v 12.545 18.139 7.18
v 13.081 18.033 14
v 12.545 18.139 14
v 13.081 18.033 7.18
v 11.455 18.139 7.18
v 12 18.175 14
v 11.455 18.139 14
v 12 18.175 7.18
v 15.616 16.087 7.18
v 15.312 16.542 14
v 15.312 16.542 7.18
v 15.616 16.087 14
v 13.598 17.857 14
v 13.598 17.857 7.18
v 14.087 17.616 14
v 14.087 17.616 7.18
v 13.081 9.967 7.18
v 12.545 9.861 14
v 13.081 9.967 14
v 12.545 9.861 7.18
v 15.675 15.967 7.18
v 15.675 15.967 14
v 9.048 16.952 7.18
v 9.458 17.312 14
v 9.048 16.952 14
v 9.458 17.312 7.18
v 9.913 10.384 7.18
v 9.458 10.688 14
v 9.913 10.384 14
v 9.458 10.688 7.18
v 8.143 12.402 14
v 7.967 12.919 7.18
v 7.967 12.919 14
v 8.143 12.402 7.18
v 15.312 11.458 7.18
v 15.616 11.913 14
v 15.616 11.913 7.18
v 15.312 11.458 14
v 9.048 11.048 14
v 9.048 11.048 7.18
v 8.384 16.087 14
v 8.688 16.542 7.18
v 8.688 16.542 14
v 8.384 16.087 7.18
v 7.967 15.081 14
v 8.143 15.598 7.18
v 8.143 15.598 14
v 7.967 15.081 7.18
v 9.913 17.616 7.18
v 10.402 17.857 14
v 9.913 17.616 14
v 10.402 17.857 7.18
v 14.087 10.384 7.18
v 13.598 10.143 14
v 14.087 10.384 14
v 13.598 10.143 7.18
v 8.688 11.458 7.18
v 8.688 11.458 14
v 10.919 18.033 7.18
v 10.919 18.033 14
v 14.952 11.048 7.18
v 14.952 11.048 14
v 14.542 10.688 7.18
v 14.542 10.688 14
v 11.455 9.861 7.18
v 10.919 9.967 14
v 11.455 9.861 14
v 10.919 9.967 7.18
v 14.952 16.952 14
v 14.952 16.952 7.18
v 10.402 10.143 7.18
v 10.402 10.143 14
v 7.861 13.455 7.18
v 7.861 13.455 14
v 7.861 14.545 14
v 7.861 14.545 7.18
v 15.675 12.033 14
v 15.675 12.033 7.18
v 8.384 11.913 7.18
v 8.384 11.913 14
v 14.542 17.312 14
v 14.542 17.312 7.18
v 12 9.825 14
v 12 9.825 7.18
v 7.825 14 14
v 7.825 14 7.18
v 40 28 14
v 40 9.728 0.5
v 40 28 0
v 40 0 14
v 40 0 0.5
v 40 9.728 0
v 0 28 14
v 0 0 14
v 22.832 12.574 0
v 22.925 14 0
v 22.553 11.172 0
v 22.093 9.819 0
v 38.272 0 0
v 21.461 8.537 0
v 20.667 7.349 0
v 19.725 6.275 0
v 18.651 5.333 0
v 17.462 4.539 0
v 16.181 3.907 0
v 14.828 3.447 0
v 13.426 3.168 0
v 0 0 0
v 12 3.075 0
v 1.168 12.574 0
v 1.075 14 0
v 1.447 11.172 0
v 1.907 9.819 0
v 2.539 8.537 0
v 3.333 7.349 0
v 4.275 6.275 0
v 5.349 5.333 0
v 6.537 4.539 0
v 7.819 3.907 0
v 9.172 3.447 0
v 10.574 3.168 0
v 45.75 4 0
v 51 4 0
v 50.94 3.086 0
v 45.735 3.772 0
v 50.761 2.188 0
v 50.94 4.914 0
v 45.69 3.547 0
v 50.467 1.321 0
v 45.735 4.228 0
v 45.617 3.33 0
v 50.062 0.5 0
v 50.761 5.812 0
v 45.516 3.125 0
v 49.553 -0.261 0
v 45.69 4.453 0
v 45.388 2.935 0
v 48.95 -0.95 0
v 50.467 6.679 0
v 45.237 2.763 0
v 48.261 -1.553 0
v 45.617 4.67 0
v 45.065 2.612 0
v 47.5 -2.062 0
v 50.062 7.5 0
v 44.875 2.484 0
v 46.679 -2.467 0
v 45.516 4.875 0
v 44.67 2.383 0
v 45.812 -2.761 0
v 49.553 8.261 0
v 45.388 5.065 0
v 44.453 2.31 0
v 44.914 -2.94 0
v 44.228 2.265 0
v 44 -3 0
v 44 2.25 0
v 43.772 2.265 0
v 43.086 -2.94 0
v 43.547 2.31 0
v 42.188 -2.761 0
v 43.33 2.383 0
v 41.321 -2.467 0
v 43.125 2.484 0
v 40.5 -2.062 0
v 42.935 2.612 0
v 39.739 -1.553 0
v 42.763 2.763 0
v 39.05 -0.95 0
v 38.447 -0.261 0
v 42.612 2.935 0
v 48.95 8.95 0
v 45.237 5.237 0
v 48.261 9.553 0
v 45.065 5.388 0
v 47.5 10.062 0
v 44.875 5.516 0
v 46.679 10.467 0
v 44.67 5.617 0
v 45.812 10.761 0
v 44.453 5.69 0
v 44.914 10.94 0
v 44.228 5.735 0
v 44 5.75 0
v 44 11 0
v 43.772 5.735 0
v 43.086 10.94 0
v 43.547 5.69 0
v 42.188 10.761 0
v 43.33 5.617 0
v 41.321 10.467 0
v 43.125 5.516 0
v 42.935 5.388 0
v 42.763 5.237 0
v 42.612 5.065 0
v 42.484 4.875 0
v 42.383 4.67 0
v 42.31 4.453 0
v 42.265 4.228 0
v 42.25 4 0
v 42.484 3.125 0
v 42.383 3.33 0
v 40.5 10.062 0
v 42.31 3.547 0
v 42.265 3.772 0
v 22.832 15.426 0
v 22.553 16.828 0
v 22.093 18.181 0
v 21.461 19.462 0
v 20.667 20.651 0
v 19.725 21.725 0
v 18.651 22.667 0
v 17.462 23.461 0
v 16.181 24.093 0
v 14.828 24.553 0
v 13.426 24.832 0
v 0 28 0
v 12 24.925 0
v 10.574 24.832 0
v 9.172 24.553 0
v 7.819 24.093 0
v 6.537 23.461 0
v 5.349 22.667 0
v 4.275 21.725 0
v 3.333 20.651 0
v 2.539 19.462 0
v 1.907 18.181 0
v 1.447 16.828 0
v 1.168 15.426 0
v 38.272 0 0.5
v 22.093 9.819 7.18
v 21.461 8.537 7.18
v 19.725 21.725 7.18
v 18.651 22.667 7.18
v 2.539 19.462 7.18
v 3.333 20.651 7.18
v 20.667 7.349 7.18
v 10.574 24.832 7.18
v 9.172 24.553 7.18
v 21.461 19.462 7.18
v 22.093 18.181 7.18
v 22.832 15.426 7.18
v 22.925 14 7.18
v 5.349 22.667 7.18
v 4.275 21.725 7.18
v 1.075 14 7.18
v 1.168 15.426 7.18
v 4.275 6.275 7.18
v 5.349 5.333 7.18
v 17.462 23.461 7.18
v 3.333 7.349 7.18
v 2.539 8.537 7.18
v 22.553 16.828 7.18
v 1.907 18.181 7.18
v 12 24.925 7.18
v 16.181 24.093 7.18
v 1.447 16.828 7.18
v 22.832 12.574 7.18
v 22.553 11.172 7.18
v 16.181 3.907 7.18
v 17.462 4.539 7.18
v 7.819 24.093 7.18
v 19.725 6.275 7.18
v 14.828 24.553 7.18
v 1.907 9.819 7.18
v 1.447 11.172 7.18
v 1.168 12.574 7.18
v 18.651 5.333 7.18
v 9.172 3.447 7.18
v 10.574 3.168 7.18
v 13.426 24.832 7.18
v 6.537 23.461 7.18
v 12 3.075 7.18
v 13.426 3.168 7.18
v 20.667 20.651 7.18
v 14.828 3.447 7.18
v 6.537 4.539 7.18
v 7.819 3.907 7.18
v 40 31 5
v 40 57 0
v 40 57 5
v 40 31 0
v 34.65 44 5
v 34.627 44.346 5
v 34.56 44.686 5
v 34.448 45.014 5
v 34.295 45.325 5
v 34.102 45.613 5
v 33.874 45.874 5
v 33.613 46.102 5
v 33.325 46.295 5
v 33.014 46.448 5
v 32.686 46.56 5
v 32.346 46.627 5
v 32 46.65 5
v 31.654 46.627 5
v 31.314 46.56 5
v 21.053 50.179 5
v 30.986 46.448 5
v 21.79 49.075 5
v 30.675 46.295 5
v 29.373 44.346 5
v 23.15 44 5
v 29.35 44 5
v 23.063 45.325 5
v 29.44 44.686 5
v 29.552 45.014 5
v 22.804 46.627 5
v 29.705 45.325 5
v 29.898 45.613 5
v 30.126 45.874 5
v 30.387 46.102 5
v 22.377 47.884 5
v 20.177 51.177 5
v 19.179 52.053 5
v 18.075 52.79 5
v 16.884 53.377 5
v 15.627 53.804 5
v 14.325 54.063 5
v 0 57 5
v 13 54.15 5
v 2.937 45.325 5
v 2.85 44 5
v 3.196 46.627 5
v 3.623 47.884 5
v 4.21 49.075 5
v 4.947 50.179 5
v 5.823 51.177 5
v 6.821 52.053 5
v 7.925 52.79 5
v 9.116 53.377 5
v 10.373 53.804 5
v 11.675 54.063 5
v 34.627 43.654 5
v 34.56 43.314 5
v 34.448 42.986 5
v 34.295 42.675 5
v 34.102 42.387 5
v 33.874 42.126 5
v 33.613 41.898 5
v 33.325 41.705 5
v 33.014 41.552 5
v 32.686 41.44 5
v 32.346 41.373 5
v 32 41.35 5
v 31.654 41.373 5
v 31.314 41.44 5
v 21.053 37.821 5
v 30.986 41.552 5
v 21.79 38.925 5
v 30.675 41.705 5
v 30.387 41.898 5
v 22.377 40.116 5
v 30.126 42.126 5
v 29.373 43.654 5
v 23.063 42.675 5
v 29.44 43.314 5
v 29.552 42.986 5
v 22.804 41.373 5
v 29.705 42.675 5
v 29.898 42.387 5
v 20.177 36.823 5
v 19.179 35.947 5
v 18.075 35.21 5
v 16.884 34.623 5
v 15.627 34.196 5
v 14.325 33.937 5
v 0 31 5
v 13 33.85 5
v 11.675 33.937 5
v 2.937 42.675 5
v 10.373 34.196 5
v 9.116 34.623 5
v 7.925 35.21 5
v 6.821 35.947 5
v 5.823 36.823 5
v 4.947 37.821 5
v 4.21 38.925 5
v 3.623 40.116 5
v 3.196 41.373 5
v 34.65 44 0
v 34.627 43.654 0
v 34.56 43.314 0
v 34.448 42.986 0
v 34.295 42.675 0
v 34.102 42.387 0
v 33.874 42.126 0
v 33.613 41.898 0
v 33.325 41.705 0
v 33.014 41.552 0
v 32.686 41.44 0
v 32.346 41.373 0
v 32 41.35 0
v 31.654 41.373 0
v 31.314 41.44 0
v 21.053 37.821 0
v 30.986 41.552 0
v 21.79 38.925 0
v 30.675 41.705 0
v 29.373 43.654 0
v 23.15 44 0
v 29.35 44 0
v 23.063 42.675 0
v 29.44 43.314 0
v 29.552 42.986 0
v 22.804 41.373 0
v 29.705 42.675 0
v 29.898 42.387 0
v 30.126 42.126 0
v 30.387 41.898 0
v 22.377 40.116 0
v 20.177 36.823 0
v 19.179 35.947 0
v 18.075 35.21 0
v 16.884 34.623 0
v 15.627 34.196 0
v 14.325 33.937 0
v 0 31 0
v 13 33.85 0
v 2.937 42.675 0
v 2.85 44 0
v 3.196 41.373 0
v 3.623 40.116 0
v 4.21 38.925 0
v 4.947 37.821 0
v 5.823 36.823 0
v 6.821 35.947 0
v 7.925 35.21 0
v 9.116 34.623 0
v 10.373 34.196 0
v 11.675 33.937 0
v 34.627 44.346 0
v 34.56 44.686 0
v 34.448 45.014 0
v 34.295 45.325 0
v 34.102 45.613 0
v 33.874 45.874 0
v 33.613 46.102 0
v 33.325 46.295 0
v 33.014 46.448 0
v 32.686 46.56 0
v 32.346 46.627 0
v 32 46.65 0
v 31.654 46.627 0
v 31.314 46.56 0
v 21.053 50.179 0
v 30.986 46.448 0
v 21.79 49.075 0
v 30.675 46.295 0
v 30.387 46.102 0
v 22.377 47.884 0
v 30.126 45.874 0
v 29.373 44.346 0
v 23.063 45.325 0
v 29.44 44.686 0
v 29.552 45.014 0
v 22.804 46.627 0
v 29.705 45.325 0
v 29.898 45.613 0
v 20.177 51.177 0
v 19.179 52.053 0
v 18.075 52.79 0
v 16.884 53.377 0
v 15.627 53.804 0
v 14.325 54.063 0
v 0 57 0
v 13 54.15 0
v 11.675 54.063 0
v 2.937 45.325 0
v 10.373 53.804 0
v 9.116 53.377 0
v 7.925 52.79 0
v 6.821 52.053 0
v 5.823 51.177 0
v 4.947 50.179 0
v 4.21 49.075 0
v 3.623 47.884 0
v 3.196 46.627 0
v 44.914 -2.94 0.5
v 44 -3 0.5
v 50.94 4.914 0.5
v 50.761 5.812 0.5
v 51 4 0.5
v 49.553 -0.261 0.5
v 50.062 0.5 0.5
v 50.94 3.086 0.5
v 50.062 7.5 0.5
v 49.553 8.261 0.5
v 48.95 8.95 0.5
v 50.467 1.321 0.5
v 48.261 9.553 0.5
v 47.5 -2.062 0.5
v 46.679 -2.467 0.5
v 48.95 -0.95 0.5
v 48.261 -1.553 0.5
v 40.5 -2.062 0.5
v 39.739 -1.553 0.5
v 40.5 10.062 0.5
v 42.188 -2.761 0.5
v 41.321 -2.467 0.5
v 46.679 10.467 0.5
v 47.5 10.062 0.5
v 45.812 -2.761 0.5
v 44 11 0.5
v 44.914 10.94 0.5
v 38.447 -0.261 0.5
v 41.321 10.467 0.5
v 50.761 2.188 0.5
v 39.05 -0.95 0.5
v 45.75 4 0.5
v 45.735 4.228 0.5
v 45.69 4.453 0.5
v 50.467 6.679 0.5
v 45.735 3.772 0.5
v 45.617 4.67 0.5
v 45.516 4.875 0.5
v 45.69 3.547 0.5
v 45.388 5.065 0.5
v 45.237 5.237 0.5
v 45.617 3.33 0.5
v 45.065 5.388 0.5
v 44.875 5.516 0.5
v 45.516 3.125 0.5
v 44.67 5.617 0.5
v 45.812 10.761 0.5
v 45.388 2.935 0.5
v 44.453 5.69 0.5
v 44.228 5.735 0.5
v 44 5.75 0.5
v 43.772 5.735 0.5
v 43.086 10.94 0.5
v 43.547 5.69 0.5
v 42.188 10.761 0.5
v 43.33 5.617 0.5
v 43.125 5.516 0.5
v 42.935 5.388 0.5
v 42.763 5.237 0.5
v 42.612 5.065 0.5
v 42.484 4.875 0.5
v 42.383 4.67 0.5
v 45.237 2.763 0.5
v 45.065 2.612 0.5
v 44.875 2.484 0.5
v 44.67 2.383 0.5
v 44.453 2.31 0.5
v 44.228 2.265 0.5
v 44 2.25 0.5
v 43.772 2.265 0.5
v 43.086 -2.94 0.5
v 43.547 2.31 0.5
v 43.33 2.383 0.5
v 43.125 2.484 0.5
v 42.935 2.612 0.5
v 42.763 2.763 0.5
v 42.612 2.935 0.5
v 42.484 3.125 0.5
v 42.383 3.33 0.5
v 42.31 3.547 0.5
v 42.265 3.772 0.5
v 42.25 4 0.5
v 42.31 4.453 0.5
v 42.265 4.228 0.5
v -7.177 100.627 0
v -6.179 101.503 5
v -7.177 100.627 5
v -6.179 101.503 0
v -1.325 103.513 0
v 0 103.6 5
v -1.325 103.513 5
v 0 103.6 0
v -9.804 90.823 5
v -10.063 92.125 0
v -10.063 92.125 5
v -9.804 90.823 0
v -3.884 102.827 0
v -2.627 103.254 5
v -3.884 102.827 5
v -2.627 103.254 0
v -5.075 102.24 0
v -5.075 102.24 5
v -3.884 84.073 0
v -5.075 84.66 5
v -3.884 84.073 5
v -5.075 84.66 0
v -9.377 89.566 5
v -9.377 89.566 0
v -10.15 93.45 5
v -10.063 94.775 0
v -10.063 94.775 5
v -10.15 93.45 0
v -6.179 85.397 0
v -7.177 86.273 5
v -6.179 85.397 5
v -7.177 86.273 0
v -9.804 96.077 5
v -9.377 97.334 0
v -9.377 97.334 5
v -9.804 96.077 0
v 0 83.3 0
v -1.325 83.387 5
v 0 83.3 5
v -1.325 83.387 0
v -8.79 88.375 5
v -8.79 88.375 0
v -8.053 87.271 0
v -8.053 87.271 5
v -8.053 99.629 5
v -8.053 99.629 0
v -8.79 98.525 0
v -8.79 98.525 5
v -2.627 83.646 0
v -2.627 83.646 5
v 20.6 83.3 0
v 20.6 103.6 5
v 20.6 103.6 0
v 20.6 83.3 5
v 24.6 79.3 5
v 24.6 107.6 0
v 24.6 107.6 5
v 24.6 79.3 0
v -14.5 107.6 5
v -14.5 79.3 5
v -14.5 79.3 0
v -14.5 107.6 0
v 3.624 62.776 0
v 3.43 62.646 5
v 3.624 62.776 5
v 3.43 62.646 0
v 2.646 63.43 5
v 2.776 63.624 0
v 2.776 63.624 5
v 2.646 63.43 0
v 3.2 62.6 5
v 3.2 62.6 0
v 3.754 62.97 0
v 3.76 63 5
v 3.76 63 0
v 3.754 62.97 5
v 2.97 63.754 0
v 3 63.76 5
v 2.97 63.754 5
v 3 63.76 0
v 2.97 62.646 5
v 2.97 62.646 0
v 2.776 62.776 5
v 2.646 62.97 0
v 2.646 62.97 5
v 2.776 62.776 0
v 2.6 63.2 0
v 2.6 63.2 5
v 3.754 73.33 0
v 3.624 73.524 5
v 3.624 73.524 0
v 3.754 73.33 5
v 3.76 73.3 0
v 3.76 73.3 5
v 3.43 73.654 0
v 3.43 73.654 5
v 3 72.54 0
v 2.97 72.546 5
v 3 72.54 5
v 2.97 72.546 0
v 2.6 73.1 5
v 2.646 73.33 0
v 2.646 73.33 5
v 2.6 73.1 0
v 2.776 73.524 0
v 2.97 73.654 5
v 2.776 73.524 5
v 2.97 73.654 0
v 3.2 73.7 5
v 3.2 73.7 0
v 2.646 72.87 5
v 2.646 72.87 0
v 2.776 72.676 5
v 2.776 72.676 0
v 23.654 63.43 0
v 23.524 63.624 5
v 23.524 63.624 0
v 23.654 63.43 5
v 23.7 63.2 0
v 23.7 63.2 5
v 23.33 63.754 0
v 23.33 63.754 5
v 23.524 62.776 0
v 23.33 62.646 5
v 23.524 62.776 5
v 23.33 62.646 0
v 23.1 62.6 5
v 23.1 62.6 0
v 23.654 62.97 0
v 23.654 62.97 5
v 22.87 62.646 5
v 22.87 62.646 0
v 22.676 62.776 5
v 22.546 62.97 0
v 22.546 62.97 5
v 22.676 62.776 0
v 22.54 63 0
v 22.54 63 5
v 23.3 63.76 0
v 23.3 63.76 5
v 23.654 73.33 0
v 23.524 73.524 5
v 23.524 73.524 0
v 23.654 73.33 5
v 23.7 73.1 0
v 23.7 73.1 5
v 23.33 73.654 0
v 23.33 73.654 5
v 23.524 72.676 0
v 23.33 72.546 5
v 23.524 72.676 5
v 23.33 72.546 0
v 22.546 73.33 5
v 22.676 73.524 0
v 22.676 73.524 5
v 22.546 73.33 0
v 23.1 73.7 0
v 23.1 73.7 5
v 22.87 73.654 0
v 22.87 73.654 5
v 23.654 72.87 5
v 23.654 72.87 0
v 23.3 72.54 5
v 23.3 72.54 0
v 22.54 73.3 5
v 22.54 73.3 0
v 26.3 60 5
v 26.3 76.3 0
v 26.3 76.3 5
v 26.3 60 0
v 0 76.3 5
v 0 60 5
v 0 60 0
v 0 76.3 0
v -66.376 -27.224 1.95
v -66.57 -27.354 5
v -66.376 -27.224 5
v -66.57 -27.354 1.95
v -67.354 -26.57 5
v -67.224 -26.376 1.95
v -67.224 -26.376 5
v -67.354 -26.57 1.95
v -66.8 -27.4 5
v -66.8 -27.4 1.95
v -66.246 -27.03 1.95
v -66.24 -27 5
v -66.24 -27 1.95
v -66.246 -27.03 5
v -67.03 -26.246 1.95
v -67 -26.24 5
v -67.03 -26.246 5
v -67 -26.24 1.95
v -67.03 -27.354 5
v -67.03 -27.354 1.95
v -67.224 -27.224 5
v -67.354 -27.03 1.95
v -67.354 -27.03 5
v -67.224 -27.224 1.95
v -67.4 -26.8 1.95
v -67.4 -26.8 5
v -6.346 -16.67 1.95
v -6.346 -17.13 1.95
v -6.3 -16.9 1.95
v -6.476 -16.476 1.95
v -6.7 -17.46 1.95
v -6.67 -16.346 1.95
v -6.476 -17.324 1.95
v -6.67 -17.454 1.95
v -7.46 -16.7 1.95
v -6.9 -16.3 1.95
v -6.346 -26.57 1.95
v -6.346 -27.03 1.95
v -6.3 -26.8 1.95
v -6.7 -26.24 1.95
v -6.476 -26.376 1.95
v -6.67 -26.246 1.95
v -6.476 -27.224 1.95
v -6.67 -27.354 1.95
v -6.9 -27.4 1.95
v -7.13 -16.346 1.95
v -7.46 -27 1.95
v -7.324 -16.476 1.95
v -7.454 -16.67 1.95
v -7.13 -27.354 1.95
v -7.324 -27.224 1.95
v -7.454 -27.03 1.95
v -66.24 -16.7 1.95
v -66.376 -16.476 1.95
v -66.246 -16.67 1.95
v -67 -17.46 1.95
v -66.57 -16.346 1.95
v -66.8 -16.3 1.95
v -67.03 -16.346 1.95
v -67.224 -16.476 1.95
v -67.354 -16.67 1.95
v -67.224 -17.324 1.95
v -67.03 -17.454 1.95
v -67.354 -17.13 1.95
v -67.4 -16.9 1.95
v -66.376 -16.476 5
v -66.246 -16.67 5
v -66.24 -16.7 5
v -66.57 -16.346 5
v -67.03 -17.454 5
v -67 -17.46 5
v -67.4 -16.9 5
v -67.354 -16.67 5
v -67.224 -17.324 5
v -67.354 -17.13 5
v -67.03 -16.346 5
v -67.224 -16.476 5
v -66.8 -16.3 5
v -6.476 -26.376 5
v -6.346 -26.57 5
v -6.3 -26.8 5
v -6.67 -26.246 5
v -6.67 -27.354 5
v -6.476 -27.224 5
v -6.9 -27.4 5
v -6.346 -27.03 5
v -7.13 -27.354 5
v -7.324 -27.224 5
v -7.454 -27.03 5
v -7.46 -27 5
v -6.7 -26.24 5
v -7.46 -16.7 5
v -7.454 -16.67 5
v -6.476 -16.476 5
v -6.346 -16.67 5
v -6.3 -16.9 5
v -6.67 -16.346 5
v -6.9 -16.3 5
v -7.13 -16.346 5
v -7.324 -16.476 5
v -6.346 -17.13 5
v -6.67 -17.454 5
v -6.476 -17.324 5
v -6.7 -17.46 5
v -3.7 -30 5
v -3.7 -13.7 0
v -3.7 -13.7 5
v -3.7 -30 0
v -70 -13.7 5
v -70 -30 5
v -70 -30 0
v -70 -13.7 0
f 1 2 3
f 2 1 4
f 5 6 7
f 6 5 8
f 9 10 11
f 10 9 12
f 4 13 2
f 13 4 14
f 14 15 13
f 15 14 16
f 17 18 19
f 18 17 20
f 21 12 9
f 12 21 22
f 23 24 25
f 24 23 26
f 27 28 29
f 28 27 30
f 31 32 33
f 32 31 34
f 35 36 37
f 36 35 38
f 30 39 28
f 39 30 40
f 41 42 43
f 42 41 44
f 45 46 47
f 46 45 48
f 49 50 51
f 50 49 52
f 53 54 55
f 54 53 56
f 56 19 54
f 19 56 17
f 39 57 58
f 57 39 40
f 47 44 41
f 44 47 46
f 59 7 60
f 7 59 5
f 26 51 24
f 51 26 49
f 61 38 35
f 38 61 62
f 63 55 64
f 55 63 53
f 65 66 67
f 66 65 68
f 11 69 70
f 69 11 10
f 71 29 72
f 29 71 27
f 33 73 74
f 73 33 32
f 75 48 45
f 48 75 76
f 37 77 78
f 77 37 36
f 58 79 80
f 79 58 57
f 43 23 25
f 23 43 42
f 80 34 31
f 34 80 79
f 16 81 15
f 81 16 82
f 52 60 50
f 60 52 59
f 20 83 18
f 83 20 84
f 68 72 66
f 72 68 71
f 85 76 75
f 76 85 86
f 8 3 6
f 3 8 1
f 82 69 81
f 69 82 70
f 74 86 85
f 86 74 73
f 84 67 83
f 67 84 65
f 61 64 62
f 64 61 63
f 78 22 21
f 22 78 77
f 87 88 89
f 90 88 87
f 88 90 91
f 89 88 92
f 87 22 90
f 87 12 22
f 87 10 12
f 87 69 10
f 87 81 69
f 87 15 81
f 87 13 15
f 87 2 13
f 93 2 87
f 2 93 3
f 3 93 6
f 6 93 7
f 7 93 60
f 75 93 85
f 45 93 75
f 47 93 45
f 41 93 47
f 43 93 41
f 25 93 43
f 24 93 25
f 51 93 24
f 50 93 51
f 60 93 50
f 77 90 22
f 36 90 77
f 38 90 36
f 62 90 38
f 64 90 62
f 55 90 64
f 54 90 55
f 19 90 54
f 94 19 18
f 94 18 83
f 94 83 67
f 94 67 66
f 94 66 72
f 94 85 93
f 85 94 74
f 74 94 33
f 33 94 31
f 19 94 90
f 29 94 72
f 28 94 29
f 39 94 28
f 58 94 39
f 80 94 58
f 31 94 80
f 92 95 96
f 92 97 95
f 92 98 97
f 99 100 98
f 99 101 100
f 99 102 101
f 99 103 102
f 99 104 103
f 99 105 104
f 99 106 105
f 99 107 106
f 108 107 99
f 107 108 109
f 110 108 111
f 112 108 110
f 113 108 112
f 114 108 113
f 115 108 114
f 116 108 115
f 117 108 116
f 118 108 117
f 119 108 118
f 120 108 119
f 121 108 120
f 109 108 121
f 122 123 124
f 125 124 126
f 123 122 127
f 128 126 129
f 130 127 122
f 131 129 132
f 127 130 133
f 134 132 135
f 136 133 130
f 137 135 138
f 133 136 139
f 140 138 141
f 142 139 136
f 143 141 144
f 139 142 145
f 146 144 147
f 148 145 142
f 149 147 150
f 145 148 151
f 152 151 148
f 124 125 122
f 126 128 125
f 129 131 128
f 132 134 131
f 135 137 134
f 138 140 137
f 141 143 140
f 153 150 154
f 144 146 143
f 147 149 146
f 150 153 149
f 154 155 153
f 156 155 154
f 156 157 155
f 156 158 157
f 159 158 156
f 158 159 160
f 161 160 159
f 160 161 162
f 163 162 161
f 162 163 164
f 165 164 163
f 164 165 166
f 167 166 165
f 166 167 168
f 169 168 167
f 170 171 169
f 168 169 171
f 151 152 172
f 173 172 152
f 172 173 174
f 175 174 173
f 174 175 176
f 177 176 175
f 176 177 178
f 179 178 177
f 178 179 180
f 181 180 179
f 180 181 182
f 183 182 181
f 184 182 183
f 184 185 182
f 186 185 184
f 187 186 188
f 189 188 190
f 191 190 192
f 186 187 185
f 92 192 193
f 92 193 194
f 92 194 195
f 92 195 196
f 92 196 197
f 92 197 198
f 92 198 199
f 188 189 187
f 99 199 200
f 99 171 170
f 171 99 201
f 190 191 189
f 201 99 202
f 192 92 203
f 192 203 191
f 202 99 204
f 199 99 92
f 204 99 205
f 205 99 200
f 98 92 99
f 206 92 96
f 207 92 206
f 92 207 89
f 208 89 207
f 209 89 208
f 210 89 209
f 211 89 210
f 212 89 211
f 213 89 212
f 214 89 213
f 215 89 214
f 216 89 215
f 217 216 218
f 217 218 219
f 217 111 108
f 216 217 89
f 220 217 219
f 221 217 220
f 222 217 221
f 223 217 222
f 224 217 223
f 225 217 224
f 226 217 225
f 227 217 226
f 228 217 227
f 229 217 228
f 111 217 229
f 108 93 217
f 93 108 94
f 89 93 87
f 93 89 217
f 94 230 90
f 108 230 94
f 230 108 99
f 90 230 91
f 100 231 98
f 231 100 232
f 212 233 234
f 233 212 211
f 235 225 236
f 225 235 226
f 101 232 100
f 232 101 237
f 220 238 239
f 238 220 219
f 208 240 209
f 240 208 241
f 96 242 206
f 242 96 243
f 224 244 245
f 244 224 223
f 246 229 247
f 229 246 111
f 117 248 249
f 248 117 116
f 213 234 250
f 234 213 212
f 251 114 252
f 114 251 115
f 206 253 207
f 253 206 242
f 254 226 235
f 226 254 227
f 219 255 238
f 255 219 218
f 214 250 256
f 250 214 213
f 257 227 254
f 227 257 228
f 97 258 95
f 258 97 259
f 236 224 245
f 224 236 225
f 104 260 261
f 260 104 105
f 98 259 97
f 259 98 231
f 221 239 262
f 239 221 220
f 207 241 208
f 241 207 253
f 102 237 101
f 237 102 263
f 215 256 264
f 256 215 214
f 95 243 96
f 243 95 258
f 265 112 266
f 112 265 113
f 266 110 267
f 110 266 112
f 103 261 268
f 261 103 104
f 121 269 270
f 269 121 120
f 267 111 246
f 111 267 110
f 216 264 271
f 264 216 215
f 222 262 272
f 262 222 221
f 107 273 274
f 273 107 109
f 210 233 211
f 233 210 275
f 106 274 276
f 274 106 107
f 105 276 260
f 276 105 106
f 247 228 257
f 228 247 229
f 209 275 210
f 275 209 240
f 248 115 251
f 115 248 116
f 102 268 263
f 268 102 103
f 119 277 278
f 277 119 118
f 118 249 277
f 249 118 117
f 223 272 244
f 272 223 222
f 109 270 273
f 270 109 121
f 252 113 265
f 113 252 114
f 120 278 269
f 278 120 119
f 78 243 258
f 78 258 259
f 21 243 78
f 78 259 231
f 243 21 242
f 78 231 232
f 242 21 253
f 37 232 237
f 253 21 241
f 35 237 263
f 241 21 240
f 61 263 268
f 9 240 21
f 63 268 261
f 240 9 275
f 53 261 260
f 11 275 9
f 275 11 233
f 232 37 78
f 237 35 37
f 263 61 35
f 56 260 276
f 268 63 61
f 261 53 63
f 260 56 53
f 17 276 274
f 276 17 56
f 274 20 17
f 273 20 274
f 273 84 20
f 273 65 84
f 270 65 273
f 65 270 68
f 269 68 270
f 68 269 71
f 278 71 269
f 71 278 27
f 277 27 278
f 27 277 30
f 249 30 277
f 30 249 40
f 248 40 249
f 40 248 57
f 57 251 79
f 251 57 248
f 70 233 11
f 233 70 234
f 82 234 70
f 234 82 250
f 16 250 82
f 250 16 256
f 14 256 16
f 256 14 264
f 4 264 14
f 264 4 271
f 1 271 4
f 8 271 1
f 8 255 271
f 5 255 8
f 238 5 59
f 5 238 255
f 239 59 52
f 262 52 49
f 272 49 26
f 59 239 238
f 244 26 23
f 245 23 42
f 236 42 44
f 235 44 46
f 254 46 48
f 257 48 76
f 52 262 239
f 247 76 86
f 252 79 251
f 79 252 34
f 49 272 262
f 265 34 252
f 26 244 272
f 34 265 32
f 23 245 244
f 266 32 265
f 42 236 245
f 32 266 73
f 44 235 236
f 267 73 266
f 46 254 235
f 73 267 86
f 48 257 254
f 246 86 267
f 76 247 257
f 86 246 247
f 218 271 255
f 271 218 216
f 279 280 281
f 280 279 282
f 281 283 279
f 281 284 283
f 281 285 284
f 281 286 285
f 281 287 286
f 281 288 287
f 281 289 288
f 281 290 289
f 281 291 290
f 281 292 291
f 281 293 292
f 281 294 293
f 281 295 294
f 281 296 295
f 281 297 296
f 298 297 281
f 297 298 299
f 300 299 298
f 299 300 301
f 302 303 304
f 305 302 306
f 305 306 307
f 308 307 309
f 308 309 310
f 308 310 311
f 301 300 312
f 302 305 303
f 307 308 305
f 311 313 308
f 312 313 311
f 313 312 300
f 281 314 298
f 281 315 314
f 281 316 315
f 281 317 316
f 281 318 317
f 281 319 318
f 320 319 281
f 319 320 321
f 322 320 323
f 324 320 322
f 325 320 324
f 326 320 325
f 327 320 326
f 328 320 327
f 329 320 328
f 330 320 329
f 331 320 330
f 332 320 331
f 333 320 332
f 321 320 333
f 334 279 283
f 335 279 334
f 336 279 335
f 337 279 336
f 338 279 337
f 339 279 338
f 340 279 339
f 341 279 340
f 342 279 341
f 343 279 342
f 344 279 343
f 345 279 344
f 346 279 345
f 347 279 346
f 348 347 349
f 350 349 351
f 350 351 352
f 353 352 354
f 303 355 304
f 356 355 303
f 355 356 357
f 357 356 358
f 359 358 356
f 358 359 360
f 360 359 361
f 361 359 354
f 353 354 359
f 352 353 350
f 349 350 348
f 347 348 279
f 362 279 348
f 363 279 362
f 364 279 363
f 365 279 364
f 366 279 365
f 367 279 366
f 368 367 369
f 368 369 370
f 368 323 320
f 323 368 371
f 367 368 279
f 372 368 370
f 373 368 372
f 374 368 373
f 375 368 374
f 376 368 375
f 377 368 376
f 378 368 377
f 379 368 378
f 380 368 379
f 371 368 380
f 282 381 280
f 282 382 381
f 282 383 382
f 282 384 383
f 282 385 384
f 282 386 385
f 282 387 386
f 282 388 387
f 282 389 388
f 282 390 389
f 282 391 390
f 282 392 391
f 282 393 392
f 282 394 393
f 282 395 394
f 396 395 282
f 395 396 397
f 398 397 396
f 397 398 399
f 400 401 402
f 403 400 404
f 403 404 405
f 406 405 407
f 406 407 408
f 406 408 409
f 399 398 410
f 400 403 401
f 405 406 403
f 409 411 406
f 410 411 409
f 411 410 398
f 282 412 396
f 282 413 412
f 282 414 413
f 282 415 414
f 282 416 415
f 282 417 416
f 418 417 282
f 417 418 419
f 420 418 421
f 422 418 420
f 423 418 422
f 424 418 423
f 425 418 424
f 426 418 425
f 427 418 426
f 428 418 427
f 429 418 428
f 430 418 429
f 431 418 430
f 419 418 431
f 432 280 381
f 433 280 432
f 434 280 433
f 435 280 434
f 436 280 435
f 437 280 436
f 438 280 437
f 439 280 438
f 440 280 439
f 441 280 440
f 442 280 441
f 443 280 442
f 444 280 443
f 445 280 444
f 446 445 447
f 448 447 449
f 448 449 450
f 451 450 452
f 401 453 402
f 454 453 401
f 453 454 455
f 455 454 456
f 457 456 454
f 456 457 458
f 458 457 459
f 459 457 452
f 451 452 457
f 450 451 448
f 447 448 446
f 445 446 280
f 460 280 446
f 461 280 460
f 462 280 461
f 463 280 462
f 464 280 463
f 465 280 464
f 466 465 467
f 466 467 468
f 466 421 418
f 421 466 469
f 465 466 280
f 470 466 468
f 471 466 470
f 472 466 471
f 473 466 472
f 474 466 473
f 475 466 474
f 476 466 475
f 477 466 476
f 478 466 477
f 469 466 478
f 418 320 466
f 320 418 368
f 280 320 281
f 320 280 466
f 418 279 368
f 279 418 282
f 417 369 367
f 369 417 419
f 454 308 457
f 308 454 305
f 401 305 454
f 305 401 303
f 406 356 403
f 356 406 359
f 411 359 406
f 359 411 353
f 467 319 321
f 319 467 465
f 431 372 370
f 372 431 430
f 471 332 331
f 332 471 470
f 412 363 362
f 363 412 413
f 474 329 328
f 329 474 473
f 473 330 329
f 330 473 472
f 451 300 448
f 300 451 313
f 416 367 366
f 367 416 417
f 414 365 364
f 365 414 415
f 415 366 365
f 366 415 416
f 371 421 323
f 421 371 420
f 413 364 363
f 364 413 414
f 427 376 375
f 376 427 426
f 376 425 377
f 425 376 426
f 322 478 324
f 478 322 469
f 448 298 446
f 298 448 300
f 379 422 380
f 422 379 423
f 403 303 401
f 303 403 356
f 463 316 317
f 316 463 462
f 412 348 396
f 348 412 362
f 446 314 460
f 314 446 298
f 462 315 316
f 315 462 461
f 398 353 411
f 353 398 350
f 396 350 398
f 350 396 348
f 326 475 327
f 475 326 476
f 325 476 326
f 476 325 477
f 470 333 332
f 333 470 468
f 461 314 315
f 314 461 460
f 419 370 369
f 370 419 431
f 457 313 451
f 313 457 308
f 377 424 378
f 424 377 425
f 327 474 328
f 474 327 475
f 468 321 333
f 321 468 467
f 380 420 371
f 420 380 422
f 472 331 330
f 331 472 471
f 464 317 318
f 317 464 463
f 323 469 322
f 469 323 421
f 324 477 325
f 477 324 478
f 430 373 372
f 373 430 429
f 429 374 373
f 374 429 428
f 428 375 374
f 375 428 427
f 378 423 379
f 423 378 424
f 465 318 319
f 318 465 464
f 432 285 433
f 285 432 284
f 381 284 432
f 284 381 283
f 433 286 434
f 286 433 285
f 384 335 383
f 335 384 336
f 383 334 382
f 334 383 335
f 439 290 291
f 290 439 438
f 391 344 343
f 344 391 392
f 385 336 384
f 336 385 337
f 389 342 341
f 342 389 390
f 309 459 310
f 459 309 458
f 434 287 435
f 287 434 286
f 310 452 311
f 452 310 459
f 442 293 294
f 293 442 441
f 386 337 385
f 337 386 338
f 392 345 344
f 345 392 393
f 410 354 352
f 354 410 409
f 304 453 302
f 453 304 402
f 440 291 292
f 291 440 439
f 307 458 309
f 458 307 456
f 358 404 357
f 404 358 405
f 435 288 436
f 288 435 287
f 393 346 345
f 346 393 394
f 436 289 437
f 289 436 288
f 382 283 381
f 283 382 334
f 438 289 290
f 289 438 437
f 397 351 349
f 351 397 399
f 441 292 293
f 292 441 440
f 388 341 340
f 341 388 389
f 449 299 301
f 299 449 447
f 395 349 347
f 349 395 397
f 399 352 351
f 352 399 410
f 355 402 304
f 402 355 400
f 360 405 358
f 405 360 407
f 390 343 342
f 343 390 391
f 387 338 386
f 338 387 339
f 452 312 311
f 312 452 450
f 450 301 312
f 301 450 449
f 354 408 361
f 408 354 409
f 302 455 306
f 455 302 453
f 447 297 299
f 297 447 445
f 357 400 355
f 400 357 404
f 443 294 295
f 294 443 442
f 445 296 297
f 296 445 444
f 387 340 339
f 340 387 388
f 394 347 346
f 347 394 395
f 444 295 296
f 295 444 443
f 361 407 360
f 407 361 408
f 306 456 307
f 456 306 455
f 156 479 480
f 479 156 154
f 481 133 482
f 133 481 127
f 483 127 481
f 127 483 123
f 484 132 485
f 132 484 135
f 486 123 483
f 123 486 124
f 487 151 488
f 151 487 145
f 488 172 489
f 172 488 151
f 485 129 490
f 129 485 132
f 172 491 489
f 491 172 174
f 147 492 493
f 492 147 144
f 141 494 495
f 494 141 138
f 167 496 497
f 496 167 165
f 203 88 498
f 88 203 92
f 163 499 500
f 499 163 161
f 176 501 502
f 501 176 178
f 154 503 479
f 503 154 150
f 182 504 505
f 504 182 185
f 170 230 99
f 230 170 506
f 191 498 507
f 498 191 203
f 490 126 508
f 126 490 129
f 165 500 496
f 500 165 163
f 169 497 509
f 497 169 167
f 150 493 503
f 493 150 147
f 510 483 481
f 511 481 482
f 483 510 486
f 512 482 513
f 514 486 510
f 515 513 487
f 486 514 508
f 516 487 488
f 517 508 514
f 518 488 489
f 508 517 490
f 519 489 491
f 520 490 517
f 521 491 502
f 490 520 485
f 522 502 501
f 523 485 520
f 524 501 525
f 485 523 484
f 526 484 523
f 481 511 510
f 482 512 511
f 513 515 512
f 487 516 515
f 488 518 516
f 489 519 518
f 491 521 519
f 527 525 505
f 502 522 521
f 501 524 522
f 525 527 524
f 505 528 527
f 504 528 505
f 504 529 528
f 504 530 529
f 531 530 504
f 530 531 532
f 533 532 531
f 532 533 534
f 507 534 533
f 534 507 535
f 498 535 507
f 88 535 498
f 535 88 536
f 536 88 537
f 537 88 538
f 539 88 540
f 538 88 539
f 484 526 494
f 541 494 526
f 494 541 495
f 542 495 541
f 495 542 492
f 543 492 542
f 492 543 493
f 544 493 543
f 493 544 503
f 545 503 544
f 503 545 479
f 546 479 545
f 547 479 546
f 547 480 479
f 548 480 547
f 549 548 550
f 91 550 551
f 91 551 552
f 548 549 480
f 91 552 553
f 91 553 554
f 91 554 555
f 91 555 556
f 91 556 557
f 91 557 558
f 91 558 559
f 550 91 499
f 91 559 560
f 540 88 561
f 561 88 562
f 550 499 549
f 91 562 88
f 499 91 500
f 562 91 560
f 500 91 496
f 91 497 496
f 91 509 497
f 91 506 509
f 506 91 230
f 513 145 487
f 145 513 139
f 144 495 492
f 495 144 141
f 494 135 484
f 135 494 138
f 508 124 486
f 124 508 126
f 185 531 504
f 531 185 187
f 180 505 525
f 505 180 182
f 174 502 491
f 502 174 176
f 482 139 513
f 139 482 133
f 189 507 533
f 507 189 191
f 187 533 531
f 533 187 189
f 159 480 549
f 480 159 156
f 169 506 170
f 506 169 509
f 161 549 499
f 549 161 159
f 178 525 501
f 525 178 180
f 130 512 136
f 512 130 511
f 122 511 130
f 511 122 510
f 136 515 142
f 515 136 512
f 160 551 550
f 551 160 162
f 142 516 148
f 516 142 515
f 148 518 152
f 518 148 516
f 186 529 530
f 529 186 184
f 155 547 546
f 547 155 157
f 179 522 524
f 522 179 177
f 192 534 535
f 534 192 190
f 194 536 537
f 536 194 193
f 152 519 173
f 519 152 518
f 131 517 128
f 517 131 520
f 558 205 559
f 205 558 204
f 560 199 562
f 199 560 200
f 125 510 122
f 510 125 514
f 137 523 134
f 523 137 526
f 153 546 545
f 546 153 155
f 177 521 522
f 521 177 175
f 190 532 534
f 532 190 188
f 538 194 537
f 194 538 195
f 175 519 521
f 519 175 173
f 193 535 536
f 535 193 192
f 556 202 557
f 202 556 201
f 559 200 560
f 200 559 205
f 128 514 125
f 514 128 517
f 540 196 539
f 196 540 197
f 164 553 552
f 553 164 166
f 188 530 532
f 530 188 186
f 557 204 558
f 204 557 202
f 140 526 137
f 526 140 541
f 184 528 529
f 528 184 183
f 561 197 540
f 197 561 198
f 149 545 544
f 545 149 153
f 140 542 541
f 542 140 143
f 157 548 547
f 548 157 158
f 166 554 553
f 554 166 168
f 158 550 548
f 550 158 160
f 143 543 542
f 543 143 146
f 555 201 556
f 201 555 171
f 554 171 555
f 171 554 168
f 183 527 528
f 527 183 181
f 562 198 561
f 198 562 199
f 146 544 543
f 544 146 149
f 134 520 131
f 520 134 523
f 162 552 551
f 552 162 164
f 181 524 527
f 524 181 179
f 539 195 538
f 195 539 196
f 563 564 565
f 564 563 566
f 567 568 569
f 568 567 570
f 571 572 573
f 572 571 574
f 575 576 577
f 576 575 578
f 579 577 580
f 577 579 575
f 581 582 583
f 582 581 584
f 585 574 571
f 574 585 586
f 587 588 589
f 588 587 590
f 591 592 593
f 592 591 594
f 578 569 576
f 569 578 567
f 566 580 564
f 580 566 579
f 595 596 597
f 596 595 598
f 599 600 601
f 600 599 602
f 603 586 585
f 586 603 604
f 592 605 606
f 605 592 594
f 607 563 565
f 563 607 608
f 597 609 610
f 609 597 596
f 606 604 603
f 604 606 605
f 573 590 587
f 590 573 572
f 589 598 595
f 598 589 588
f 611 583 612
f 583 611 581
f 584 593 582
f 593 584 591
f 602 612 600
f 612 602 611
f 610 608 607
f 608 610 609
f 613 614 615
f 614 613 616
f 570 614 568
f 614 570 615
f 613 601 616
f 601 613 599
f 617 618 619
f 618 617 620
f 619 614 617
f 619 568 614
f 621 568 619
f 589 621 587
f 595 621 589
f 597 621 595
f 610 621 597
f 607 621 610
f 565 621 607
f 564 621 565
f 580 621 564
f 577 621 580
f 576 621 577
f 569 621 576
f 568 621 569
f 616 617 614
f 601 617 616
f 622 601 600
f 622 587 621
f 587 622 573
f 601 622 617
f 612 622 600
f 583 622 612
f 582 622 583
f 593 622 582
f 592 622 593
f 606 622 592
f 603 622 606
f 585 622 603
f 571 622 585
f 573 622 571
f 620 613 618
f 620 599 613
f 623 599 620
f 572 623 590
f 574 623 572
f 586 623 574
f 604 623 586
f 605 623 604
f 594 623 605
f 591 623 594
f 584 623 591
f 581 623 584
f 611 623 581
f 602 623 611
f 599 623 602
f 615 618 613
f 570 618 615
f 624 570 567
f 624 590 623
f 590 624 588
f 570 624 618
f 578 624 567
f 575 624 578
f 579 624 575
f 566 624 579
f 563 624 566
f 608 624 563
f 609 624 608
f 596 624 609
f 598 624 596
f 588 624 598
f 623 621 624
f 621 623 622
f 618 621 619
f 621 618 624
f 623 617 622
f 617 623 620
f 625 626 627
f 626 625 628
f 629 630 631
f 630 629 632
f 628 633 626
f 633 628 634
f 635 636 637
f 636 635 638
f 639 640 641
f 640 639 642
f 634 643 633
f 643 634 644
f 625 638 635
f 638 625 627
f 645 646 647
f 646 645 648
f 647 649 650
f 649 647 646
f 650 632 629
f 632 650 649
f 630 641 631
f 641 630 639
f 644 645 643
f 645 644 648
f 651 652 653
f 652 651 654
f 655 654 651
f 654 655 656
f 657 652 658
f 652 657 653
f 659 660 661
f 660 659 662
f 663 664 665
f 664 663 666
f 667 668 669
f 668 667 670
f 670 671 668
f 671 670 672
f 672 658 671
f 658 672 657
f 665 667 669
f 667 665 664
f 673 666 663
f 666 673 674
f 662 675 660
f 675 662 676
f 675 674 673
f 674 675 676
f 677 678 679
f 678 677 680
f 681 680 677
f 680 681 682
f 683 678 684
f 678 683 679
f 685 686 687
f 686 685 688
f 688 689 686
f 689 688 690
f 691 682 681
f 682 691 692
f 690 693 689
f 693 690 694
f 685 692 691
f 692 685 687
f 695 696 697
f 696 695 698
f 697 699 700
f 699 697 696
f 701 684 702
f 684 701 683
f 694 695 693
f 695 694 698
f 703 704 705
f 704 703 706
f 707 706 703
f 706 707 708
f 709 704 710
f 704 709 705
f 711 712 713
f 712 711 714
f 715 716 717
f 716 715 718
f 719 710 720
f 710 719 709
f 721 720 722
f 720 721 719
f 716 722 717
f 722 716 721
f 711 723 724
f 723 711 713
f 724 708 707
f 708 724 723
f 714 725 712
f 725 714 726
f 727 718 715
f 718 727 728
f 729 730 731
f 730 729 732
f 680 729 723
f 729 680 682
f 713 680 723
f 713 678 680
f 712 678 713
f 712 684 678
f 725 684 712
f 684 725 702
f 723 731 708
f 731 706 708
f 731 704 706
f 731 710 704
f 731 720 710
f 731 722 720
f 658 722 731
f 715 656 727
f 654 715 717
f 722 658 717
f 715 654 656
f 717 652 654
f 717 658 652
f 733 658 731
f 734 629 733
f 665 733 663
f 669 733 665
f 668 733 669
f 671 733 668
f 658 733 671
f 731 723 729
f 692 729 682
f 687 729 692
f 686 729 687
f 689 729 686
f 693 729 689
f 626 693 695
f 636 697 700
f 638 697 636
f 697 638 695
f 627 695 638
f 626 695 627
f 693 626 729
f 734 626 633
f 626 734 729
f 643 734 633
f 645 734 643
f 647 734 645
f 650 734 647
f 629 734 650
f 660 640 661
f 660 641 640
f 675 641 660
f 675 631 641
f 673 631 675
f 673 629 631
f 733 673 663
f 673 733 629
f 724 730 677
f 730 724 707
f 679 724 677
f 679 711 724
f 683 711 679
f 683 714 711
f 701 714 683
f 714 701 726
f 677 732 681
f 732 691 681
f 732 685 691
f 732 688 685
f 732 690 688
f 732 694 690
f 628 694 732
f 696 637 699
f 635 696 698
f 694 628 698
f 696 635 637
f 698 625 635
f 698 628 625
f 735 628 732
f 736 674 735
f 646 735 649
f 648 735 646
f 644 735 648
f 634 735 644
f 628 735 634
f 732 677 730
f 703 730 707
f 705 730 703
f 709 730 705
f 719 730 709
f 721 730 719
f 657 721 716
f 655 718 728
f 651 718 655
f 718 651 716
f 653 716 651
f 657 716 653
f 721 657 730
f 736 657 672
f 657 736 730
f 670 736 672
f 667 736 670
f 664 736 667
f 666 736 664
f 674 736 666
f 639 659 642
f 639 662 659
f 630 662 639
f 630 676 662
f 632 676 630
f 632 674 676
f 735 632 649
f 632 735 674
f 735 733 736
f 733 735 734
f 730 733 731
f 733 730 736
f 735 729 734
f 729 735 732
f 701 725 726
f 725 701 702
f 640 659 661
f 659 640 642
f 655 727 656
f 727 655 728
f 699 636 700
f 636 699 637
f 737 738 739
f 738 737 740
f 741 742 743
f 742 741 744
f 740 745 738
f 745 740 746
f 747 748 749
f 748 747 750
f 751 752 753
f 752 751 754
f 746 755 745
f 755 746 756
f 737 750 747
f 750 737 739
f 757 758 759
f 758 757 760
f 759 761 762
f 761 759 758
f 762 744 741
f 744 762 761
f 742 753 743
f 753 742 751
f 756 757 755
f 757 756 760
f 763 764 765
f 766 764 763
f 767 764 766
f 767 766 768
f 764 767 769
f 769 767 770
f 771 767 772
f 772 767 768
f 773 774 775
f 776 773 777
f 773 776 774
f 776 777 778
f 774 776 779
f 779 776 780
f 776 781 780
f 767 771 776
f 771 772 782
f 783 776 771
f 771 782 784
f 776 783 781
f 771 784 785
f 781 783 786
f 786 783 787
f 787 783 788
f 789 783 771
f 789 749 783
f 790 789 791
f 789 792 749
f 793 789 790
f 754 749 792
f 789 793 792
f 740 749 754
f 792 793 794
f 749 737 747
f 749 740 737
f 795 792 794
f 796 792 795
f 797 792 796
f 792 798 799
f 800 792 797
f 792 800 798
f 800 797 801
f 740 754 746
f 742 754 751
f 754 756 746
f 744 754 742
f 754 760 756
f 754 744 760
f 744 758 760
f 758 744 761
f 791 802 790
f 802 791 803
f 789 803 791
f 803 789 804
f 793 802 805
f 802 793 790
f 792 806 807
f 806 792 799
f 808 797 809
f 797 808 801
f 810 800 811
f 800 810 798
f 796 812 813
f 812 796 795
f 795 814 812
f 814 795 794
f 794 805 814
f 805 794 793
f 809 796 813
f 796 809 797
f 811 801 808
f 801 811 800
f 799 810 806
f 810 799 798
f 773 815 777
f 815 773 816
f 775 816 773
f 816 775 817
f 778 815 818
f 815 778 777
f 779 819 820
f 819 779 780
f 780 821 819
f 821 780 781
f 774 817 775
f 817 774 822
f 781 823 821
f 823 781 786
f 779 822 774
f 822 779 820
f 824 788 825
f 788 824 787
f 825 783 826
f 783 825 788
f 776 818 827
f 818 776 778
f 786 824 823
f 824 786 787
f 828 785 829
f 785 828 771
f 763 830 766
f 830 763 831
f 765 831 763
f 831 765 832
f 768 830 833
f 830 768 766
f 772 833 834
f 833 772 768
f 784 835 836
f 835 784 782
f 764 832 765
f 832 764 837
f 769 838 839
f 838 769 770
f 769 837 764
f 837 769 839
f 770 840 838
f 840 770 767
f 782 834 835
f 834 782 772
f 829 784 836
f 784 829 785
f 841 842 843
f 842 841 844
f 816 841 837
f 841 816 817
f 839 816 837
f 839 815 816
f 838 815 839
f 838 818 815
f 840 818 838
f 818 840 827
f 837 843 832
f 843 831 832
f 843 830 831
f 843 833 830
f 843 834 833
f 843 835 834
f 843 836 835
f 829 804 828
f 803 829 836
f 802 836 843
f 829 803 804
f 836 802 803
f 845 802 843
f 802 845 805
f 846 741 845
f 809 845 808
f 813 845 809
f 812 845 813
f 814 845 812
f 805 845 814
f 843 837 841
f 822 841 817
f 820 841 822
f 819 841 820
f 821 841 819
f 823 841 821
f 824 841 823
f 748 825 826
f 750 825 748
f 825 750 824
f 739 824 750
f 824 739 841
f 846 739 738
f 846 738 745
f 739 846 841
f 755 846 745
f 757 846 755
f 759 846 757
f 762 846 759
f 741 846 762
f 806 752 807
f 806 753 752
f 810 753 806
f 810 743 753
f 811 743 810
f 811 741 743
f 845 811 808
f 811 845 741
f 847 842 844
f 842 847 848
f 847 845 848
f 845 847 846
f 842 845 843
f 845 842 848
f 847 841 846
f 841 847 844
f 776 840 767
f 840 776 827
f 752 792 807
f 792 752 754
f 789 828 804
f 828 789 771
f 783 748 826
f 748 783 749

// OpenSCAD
// Gen-CZ — fit coupon: O20/O5 THROUGH pockets at carrier thickness (test on a steel offcut), 608 seat,
// D-flat bore, gap shim, and one bobbin-bay slice (bobbin footprint + bay_clear) to test former fit.
include <parameters.scad>;
$fn = 48;
// D-flat keyed bore: flat faces +X (angle 0 = magnet pocket 0 = index notch)
module dflat_bore(h) {
    intersection() {
        cylinder(d=shaft_bore, h=h);
        translate([-shaft_bore, -shaft_bore, 0]) cube([shaft_bore + dflat_x, 2*shaft_bore, h]);
    }
}
module sector_2d(r_in, r_out, ang) {
    polygon([
        for (a = [-ang/2 : ang/24 : ang/2]) [r_in*cos(a), r_in*sin(a)],
        for (a = [ang/2 : -ang/24 : -ang/2]) [r_out*cos(a), r_out*sin(a)]
    ]);
}
module footprint_2d() { offset(r=wall) sector_2d(coil_id_r, coil_od_r, span_deg); }
module hub_2d()       { offset(delta=-coil_core_inset) sector_2d(coil_id_r, coil_od_r, span_deg); }

block_w = 40; block_d = 28; block_h = 14;
difference() {
    cube([block_w, block_d, block_h]);
    translate([12, block_d/2, -0.02]) cylinder(d=bearing_d, h=bearing_h);
    translate([12, block_d/2, -0.1]) dflat_bore(block_h + 1);
}
translate([0, block_d + 3, 0]) difference() {
    cube([40, 26, carrier_thick]);
    translate([13, 13, -0.1]) cylinder(d=large_pocket_d, h=carrier_thick + 0.2);
    translate([32, 13, -0.1]) cylinder(d=small_pocket_d, h=carrier_thick + 0.2);
}
translate([block_w + 4, 4, 0])
    difference() {
        cylinder(d=spacer_pad_od, h=gap_spacer_h);
        translate([0, 0, -0.1]) cylinder(d=spacer_pad_id, h=gap_spacer_h + 0.2);
    }
// KEYHOLE pole pocket test (2026-10-18): O20 disc pocket + N42 20x10x5 block pocket merged (hull), as on the arcs.
// Drop a disc and a block in: they must push each other onto the two far walls and sit flat. Block pocket has corner reliefs.
translate([0, block_d + 3 + 26 + 3 + block_radial + block_pocket_clear + 6 + 3 + max(block_tangential, large_pocket_d) / 2 + 4, 0]) difference() {
    translate([-14.5, -(max(block_tangential, large_pocket_d) / 2 + 4), 0]) cube([14.5 + abs(block_R_list[0] - R_large) + block_radial / 2 + 4, max(block_tangential, large_pocket_d) + 8, carrier_thick]);
    translate([0, 0, -0.1]) {
        translate([disc_pocket_shift * sign(block_R_list[0] - R_large), 0, 0]) cylinder(d=large_pocket_d, h=carrier_thick + 0.2);
        translate([disc_pocket_shift * sign(block_R_list[0] - R_large), -(block_tangential + block_pocket_clear)/2, 0])
            cube([abs(block_R_list[0] - R_large) - abs(block_pocket_shift) + (block_radial + block_pocket_clear)/2 - disc_pocket_shift * sign(block_R_list[0] - R_large), block_tangential + block_pocket_clear, carrier_thick + 0.2]);
    }
}
// N42 20x10x5 BLOCK through-pocket test (block + block_pocket_clear, 1.2 mm corner reliefs), 2026-10-16
translate([0, block_d + 3 + 26 + 3, 0]) difference() {
    cube([block_tangential + block_pocket_clear + 6, block_radial + block_pocket_clear + 6, carrier_thick]);
    translate([3, 3, -0.1]) cube([block_tangential + block_pocket_clear, block_radial + block_pocket_clear, carrier_thick + 0.2]);
    for (x = [3.2, 3 + block_tangential + block_pocket_clear - 0.2], y = [3.2, 3 + block_radial + block_pocket_clear - 0.2])
        translate([x, y, -0.1]) cylinder(d=1.2, h=carrier_thick + 0.2, $fn=16);
}
// N52 60x10x3 BAR blind-pocket test (2026-10-21): bar + 0.3 mm, depth block2_pocket_depth: the bar face must sit flush with the top.
translate([-70, -30, 0]) difference() {
    cube([block2_tangential + block2_pocket_clear + 6, block2_radial + block2_pocket_clear + 6, carrier_thick]);
    translate([3, 3, carrier_thick - block2_pocket_depth]) cube([block2_tangential + block2_pocket_clear, block2_radial + block2_pocket_clear, carrier_thick]);
    for (x = [3.2, 3 + block2_tangential + block2_pocket_clear - 0.2], y = [3.2, 3 + block2_radial + block2_pocket_clear - 0.2])
        translate([x, y, carrier_thick - block2_pocket_depth]) cylinder(d=1.2, h=carrier_thick, $fn=16);
}
